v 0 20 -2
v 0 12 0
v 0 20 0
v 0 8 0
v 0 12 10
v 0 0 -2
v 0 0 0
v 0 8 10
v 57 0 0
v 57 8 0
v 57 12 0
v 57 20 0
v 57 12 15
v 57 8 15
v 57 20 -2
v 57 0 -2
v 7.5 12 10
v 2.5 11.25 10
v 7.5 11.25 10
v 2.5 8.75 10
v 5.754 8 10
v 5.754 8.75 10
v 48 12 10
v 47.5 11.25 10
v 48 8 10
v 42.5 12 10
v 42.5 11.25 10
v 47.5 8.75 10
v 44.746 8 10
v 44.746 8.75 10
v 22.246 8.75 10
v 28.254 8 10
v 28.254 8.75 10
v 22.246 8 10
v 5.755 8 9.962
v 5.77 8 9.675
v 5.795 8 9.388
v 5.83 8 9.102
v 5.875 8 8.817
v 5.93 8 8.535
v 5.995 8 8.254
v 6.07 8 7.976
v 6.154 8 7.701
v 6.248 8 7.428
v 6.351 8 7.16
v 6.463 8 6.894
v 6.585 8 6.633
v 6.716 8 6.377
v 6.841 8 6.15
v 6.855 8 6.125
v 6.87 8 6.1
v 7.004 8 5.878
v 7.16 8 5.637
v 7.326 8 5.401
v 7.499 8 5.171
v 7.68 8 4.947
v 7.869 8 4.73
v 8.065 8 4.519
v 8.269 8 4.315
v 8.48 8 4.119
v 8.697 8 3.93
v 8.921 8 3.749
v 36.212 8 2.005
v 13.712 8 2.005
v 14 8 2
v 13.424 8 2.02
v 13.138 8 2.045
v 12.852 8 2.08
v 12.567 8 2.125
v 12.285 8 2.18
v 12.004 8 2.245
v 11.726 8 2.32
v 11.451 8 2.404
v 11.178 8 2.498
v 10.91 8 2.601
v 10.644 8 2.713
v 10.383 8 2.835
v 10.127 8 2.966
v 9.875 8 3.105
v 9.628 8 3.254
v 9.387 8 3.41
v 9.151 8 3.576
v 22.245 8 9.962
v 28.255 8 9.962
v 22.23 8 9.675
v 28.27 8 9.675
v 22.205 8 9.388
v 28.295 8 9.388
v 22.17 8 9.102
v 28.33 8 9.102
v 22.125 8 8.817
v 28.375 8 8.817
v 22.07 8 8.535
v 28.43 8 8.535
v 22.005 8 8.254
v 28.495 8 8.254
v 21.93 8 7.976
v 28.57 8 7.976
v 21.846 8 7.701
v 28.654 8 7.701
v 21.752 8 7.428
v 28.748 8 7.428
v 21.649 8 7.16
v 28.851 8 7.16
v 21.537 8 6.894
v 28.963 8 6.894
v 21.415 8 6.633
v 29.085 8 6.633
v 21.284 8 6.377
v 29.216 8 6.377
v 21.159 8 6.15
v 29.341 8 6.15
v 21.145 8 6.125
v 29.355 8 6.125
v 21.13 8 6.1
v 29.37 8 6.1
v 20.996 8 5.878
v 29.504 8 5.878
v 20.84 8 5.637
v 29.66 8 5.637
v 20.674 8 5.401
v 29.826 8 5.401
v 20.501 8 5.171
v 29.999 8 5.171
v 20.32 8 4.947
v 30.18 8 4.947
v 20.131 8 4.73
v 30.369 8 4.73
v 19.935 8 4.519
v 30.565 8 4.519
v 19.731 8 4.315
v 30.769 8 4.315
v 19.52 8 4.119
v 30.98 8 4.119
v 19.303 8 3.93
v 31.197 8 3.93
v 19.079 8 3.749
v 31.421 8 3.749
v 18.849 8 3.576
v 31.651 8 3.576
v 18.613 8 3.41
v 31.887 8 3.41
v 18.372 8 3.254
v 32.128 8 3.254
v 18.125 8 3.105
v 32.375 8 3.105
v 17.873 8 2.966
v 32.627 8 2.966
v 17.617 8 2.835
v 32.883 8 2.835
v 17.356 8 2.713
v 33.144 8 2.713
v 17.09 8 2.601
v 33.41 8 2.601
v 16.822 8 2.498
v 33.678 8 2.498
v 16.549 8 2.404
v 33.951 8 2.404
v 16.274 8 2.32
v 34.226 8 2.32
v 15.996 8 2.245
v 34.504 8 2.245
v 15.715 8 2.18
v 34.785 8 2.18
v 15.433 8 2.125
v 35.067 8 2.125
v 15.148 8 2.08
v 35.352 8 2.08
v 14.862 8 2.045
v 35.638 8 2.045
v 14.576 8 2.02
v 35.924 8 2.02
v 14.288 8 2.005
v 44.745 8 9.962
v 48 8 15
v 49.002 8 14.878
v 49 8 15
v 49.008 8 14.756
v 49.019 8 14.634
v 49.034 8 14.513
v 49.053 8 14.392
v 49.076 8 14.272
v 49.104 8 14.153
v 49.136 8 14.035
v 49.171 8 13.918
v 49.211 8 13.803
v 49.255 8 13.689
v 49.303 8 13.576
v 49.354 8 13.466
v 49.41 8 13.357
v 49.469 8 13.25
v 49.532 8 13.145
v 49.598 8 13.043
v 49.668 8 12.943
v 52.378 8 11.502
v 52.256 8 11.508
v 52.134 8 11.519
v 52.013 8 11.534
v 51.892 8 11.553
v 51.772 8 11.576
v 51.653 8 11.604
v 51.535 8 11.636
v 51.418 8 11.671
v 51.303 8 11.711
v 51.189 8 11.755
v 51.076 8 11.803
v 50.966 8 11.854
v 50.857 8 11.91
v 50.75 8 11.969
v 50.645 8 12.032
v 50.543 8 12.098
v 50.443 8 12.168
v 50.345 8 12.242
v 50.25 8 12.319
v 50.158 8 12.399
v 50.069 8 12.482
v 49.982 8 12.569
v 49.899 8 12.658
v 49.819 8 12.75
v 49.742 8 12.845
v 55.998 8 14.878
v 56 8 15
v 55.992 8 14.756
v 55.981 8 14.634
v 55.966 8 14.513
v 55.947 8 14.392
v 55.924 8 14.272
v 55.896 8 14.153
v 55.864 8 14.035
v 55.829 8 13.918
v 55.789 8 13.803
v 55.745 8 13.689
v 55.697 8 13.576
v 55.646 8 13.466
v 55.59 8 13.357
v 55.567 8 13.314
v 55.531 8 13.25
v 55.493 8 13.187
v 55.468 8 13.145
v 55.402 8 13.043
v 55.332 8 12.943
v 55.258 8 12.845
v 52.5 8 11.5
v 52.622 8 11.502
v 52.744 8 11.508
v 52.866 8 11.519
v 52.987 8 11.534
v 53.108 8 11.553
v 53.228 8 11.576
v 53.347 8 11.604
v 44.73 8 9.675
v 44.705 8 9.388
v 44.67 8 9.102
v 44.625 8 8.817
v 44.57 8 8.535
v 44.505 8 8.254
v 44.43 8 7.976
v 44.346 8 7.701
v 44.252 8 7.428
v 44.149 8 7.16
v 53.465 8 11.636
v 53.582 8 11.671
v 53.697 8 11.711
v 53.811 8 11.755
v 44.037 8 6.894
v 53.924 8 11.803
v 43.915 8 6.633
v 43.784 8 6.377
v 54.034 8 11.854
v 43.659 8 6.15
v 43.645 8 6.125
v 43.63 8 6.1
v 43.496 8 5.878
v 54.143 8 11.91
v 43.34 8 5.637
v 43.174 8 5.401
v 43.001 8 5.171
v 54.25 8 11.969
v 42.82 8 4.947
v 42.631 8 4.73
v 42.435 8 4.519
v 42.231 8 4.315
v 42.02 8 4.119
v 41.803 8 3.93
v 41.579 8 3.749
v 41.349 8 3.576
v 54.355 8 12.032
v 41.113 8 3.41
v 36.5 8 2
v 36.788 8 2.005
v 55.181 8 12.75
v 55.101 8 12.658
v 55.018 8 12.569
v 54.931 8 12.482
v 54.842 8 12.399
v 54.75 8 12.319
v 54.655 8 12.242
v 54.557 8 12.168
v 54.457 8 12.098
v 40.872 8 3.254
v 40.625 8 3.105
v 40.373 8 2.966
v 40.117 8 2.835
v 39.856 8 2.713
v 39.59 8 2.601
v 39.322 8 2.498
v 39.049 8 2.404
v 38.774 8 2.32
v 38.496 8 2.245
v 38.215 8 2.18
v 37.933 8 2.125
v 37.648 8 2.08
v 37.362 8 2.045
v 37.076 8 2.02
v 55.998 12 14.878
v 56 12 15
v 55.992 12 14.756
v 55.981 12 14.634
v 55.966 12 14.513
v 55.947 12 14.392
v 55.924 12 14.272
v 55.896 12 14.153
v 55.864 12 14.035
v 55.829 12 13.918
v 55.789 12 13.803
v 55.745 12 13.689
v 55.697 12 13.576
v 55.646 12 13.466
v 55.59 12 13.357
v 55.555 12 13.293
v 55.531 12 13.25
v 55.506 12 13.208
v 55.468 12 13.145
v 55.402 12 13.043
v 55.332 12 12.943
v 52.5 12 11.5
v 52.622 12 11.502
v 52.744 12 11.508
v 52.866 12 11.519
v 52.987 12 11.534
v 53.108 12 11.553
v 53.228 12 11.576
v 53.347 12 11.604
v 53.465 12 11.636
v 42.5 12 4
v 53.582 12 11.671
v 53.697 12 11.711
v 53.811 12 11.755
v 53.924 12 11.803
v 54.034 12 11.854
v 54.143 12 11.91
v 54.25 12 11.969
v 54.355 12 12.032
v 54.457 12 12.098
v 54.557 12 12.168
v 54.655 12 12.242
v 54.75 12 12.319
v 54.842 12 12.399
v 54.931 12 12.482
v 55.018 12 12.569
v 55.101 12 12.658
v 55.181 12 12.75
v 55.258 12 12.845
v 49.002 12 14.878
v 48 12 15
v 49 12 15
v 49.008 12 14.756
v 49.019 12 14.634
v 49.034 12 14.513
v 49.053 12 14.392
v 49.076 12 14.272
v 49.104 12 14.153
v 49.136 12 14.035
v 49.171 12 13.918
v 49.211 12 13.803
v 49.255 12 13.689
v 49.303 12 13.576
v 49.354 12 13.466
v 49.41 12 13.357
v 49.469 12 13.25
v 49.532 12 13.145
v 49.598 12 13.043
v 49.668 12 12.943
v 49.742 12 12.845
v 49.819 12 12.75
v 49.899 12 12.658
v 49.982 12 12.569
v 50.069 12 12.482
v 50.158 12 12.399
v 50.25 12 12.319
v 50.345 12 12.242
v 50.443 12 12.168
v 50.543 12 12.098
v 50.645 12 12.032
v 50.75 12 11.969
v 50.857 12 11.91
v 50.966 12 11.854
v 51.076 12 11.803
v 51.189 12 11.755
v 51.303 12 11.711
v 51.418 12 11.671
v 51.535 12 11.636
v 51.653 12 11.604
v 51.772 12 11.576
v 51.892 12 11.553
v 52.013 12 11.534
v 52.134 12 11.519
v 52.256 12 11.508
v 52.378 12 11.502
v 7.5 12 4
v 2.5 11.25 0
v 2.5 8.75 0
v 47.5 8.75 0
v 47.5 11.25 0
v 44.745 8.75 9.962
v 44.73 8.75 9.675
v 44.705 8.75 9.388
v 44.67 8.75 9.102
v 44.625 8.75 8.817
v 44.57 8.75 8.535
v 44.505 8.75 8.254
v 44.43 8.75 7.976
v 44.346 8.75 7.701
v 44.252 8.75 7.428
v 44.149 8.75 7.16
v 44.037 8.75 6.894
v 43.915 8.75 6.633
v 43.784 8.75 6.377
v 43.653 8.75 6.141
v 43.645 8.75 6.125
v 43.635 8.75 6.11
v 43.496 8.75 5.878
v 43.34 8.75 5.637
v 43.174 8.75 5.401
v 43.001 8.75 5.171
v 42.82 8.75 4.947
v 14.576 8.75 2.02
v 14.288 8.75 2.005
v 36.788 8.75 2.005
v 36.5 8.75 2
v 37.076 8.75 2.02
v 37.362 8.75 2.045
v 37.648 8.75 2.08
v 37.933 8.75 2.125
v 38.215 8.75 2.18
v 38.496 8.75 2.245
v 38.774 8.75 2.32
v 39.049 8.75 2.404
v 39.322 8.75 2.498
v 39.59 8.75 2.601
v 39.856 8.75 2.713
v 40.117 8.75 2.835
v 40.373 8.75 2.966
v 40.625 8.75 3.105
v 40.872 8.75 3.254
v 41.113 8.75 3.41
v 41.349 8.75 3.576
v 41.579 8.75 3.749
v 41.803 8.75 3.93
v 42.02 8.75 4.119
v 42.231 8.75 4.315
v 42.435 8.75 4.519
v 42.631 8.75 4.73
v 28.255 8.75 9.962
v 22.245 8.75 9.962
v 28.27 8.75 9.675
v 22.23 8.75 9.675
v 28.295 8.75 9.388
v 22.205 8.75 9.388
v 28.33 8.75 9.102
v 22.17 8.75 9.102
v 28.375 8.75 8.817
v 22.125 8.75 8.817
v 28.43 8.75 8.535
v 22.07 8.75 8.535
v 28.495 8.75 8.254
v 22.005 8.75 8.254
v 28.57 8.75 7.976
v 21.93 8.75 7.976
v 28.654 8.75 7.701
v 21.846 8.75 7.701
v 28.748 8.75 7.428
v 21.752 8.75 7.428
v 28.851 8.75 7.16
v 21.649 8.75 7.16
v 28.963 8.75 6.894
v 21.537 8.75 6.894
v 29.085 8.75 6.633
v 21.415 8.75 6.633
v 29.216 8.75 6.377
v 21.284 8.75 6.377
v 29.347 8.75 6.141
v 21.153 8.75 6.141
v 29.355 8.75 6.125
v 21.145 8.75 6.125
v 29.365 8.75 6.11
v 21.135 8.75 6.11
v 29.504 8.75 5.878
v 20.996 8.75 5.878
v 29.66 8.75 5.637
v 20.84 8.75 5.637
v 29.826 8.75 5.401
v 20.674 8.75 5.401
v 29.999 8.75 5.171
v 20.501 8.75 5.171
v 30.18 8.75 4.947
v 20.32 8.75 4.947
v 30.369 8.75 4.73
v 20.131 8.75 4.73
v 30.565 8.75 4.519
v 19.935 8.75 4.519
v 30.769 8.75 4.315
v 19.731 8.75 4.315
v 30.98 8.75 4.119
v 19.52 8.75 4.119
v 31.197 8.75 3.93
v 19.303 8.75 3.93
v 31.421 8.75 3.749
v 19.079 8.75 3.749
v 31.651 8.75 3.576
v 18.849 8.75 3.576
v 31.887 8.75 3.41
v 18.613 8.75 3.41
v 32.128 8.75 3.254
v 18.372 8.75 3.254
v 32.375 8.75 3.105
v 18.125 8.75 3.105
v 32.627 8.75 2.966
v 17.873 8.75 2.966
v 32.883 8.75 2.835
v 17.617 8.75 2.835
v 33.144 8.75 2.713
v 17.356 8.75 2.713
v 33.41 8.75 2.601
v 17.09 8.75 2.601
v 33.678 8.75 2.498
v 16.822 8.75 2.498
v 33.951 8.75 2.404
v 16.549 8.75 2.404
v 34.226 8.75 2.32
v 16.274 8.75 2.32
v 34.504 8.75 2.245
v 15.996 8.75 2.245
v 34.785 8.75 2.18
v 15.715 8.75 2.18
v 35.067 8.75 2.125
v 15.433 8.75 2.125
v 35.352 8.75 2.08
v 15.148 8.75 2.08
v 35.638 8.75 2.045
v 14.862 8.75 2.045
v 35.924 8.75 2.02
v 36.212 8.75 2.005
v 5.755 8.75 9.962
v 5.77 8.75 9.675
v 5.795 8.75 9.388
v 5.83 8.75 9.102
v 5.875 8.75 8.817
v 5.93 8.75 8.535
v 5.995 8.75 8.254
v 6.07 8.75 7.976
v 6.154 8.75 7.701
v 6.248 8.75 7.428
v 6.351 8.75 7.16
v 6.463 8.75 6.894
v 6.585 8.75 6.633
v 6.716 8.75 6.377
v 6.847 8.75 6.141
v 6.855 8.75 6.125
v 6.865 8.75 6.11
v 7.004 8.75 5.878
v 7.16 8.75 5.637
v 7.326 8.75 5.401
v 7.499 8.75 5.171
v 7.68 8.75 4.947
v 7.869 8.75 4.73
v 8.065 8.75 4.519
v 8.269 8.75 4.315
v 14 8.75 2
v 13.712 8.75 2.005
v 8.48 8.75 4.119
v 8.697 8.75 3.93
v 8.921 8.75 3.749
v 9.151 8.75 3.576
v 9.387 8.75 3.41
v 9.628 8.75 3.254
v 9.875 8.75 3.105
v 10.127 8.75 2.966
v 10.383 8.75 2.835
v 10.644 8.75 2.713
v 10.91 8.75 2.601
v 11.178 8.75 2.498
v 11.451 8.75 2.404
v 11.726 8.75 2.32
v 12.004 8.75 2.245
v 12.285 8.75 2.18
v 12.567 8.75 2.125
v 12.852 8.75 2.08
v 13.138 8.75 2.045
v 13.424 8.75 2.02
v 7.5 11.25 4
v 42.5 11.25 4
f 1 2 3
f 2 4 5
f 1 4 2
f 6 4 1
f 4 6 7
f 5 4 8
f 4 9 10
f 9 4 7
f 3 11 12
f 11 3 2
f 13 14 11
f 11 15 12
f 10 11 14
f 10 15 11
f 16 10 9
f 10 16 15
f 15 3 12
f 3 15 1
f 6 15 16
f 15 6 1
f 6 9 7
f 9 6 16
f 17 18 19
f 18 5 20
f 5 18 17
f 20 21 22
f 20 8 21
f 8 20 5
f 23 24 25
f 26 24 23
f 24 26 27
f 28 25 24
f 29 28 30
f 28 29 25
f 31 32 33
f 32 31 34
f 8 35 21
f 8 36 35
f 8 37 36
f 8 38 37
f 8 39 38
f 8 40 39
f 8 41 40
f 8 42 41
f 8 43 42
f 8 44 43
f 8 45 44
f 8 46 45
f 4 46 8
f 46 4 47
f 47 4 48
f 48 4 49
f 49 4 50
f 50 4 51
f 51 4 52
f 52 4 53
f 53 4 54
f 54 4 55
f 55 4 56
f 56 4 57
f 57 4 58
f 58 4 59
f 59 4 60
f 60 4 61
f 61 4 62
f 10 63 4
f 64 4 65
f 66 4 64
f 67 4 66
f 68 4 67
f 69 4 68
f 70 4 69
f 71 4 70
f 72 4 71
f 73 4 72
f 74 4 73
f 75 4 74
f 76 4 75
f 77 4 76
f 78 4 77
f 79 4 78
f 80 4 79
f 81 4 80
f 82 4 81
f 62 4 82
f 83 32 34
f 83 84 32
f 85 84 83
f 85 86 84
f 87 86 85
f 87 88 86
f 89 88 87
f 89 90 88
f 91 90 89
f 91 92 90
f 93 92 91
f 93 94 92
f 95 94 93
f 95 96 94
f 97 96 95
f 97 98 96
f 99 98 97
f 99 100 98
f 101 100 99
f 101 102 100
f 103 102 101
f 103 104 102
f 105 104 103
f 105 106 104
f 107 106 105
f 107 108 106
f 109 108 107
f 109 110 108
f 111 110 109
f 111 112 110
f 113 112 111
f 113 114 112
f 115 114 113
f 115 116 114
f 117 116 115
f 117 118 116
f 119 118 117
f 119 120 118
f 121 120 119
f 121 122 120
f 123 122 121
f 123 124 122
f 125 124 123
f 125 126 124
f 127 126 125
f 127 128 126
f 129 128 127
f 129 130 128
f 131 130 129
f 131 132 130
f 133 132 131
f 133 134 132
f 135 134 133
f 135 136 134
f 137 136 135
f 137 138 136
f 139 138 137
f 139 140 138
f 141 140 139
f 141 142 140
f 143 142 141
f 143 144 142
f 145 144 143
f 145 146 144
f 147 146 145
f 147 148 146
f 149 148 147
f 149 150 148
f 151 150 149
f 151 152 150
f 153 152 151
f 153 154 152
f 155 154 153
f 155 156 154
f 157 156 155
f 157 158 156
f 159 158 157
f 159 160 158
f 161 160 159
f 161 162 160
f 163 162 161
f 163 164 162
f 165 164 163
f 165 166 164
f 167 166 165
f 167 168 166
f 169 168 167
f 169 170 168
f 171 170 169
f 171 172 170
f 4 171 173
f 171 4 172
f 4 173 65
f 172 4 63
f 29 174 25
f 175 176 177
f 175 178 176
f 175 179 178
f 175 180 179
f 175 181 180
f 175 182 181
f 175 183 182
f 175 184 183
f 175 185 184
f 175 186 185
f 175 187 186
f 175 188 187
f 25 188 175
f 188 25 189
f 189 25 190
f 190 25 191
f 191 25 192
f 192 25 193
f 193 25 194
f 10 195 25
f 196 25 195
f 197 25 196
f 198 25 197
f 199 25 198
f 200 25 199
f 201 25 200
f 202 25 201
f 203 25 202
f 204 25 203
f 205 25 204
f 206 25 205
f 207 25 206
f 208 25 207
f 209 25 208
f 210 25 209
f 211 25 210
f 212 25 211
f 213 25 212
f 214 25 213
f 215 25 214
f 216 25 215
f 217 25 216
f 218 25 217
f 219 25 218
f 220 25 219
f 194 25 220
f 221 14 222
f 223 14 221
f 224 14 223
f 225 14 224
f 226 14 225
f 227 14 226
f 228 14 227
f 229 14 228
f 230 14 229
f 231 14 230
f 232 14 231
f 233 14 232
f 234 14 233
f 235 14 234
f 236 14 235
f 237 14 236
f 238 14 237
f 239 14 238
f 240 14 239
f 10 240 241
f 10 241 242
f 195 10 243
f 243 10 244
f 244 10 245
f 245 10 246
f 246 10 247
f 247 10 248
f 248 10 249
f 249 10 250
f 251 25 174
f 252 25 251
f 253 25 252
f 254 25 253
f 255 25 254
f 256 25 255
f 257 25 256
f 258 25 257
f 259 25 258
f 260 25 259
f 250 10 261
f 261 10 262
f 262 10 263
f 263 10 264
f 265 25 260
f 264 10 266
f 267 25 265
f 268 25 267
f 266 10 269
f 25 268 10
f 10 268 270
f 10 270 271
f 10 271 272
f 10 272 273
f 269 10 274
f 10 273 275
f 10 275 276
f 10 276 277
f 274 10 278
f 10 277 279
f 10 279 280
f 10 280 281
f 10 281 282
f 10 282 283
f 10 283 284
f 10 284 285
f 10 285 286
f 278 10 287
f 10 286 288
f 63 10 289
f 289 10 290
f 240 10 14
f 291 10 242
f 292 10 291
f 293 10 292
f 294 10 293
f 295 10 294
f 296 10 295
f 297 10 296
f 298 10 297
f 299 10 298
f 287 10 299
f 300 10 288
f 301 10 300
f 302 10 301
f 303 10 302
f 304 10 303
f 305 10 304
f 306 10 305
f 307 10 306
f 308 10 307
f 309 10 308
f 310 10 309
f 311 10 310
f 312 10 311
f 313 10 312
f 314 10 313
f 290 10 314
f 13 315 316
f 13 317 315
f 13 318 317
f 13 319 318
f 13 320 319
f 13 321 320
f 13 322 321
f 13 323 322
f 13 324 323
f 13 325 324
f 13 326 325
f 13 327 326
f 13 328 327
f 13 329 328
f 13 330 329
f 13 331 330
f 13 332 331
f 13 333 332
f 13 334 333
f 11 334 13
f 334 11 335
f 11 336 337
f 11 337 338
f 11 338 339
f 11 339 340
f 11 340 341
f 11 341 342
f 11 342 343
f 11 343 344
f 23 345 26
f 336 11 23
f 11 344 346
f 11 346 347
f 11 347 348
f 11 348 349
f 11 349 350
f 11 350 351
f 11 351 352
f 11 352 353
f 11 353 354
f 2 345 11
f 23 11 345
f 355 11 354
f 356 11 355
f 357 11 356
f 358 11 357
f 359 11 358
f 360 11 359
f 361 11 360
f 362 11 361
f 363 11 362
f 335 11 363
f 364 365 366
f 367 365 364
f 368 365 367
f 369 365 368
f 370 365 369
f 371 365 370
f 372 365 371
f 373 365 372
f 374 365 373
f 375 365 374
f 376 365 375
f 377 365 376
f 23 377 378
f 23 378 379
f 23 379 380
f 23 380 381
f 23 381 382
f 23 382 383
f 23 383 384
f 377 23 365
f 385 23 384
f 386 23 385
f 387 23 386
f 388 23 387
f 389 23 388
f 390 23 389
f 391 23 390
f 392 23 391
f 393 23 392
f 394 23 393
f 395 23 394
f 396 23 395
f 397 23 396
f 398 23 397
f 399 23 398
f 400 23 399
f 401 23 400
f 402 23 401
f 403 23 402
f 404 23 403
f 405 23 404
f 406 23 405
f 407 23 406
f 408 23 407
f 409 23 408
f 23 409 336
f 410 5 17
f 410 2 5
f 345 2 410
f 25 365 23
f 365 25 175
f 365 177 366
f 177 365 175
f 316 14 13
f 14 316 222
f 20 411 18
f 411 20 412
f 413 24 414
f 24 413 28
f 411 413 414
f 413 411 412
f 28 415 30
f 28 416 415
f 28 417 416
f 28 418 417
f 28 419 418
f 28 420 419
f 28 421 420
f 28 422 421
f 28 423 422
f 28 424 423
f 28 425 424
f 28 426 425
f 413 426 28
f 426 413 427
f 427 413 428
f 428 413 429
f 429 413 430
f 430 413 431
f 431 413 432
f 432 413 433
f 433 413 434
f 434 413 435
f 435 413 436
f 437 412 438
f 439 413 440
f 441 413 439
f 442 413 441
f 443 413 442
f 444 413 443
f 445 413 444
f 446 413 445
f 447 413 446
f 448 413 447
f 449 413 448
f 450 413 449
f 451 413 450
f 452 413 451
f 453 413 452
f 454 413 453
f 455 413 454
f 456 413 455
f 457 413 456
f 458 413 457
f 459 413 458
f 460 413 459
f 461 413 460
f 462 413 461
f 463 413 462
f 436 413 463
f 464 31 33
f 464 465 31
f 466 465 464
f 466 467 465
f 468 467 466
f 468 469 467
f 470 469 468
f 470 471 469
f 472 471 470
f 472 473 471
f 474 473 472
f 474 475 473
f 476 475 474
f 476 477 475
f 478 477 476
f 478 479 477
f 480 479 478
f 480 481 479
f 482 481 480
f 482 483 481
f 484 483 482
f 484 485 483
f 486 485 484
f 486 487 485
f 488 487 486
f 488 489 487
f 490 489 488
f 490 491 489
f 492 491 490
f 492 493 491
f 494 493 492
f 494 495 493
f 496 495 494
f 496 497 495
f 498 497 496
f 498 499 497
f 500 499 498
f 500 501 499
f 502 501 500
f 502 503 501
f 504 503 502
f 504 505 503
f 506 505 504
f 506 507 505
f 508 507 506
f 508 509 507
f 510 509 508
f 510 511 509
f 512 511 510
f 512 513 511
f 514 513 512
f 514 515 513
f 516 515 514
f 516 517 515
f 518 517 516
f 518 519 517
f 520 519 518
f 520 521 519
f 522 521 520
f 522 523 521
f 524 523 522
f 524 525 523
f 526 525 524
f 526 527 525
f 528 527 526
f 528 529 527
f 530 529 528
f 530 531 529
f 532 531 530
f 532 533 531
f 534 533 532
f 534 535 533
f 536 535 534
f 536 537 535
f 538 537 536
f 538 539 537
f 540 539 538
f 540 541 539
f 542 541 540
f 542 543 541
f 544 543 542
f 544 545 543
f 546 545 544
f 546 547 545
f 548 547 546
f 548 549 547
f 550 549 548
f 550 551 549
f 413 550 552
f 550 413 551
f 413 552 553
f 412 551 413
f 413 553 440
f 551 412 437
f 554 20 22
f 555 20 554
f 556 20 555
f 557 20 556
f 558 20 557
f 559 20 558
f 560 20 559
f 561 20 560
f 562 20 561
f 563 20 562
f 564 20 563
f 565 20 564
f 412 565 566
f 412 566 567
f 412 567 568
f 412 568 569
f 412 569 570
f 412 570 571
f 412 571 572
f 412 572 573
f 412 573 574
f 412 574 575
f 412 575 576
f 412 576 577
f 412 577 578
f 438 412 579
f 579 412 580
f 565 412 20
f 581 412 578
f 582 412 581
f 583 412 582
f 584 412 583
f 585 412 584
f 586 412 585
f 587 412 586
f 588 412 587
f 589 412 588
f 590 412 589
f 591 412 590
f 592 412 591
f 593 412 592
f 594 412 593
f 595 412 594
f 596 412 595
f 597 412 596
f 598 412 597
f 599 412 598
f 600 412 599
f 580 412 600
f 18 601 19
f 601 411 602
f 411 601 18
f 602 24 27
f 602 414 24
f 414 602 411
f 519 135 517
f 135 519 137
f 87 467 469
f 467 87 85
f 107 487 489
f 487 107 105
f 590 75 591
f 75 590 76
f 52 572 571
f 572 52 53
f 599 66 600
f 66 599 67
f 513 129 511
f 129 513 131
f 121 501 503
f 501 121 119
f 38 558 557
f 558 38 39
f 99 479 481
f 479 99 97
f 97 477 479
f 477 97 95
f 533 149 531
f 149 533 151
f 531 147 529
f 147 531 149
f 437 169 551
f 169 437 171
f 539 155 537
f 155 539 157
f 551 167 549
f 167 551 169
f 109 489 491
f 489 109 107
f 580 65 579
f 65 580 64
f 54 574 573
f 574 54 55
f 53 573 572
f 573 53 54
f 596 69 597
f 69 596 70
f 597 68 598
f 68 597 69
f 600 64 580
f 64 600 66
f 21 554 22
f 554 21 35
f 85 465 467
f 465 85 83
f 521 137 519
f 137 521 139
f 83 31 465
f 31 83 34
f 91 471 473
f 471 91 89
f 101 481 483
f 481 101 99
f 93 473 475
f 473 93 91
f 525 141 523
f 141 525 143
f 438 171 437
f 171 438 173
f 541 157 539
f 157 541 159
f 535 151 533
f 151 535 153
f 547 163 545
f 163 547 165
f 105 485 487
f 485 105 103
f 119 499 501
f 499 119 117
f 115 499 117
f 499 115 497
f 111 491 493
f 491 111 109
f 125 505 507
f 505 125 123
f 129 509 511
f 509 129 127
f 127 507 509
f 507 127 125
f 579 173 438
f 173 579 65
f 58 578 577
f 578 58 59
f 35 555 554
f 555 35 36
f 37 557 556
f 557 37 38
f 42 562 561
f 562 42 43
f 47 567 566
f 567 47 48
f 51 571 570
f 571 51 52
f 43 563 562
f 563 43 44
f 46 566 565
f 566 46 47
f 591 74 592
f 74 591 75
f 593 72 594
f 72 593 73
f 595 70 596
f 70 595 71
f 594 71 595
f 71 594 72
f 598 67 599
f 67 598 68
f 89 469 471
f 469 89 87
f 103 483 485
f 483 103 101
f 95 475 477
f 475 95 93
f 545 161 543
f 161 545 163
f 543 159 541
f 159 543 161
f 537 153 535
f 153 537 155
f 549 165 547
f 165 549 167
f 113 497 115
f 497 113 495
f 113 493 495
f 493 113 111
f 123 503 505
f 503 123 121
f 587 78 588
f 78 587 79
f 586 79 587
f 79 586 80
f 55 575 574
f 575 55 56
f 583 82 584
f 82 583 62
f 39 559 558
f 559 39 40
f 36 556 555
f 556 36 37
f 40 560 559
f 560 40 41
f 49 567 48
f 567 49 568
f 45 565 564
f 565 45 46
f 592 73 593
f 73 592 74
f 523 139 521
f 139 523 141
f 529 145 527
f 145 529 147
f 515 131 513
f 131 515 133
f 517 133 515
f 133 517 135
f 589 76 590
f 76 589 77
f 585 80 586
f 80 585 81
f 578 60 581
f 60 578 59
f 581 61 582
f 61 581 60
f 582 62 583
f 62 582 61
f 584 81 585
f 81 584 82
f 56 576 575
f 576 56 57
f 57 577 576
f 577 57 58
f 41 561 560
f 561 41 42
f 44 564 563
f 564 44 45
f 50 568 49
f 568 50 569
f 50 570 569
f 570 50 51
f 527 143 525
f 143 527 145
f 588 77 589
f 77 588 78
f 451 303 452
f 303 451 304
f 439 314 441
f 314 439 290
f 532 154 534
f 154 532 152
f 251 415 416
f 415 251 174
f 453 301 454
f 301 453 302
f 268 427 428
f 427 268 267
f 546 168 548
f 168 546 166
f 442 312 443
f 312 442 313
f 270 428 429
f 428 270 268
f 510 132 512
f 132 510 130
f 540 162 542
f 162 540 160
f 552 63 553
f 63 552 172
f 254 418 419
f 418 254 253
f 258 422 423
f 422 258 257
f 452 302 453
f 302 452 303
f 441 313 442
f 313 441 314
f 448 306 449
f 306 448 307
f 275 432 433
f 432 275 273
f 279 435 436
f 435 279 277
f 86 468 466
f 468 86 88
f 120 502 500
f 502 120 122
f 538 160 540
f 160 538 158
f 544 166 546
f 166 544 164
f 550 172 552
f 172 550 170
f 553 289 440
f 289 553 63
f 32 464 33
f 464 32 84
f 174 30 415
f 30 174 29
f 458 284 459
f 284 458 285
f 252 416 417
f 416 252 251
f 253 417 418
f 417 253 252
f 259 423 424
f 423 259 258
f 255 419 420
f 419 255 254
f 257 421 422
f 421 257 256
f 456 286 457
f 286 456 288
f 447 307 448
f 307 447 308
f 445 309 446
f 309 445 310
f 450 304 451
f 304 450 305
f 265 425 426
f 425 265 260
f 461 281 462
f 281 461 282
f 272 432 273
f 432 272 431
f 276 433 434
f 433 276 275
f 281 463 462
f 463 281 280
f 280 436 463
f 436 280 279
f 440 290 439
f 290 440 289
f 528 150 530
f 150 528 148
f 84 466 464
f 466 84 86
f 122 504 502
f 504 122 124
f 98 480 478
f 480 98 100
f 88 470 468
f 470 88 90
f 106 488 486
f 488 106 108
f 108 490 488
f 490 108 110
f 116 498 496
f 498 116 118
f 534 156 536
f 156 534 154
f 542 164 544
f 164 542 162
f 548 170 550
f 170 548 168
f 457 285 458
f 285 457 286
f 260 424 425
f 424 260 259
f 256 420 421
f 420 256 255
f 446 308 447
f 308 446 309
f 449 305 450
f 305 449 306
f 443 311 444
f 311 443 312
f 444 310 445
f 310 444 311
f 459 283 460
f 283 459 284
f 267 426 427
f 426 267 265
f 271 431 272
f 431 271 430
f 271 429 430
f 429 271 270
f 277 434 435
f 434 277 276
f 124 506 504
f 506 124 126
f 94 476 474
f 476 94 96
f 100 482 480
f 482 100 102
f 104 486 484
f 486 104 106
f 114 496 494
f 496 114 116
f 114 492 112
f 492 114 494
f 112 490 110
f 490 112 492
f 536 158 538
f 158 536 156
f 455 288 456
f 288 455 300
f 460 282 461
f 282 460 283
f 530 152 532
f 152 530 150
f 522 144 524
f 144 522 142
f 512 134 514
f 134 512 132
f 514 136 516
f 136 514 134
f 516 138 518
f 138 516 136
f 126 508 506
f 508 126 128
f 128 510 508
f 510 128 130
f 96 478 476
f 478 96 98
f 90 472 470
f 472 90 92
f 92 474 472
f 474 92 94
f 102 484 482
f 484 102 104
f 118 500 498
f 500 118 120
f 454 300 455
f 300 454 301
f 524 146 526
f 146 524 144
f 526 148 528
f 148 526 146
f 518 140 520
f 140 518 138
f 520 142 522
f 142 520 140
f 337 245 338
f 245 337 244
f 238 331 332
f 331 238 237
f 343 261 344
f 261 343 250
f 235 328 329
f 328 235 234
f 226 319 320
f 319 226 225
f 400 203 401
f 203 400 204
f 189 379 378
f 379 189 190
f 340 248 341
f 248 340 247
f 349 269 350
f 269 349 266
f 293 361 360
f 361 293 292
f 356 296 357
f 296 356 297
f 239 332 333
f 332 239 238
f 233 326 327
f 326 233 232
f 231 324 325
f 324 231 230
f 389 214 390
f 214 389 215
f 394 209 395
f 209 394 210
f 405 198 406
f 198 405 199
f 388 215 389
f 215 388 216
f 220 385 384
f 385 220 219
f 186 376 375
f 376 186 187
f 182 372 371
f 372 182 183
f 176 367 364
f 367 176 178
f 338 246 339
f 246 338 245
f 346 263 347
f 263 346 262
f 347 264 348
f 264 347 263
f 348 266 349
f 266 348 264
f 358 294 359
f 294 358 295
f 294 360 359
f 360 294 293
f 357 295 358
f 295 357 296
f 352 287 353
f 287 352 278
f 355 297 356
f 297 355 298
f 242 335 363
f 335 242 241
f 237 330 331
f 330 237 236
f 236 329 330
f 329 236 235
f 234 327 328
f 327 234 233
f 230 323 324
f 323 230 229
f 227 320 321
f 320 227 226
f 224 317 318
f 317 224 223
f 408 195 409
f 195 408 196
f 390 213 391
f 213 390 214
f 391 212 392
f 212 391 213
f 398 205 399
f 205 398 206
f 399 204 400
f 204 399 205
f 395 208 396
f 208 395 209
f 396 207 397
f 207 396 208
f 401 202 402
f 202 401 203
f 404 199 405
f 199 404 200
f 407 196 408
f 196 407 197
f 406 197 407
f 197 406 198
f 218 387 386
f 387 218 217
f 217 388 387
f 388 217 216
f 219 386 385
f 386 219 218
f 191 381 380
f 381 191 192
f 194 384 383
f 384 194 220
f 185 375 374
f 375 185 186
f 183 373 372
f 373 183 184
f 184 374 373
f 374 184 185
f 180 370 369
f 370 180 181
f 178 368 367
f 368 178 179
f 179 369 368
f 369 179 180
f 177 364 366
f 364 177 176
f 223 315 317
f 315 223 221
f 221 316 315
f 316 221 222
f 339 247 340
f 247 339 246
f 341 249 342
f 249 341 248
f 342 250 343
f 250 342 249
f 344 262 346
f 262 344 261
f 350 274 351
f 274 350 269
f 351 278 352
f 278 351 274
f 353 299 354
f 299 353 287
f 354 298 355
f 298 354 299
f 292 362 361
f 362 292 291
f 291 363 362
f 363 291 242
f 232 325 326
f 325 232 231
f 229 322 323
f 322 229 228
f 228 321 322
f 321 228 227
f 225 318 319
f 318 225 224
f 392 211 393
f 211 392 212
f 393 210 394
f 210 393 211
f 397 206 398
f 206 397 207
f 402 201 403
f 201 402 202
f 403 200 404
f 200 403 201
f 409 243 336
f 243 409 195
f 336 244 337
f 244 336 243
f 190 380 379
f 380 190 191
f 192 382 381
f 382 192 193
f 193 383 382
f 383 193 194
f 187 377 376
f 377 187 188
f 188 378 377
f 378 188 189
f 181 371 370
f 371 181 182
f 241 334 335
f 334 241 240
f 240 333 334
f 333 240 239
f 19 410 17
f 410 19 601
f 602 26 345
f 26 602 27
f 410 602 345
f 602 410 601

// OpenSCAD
$fn = 180;

difference() {
union() {
    translate([0,0,-2]) cube([57,20,2]);
    translate([0,8,0]) cube([55,4,10]);
    translate([48,8,0]) cube([9,4,15]);
    translate([48,8,0]) cube([8,4,15]);

}
  translate([2.5,8.75,0]) cube([45,2.5,120]);
  translate([14,10,10.25]) rotate([90,0,0]) cylinder(d=16.5,h=20);
  translate([36.5,10,10.25]) rotate([90,0,0]) cylinder(d=16.5,h=20);
  translate([52.5,20,15]) rotate([90,0,0]) cylinder(d=7,h=20);
    translate([7.5,10,4]) cube([35,2.5,120]);



}
